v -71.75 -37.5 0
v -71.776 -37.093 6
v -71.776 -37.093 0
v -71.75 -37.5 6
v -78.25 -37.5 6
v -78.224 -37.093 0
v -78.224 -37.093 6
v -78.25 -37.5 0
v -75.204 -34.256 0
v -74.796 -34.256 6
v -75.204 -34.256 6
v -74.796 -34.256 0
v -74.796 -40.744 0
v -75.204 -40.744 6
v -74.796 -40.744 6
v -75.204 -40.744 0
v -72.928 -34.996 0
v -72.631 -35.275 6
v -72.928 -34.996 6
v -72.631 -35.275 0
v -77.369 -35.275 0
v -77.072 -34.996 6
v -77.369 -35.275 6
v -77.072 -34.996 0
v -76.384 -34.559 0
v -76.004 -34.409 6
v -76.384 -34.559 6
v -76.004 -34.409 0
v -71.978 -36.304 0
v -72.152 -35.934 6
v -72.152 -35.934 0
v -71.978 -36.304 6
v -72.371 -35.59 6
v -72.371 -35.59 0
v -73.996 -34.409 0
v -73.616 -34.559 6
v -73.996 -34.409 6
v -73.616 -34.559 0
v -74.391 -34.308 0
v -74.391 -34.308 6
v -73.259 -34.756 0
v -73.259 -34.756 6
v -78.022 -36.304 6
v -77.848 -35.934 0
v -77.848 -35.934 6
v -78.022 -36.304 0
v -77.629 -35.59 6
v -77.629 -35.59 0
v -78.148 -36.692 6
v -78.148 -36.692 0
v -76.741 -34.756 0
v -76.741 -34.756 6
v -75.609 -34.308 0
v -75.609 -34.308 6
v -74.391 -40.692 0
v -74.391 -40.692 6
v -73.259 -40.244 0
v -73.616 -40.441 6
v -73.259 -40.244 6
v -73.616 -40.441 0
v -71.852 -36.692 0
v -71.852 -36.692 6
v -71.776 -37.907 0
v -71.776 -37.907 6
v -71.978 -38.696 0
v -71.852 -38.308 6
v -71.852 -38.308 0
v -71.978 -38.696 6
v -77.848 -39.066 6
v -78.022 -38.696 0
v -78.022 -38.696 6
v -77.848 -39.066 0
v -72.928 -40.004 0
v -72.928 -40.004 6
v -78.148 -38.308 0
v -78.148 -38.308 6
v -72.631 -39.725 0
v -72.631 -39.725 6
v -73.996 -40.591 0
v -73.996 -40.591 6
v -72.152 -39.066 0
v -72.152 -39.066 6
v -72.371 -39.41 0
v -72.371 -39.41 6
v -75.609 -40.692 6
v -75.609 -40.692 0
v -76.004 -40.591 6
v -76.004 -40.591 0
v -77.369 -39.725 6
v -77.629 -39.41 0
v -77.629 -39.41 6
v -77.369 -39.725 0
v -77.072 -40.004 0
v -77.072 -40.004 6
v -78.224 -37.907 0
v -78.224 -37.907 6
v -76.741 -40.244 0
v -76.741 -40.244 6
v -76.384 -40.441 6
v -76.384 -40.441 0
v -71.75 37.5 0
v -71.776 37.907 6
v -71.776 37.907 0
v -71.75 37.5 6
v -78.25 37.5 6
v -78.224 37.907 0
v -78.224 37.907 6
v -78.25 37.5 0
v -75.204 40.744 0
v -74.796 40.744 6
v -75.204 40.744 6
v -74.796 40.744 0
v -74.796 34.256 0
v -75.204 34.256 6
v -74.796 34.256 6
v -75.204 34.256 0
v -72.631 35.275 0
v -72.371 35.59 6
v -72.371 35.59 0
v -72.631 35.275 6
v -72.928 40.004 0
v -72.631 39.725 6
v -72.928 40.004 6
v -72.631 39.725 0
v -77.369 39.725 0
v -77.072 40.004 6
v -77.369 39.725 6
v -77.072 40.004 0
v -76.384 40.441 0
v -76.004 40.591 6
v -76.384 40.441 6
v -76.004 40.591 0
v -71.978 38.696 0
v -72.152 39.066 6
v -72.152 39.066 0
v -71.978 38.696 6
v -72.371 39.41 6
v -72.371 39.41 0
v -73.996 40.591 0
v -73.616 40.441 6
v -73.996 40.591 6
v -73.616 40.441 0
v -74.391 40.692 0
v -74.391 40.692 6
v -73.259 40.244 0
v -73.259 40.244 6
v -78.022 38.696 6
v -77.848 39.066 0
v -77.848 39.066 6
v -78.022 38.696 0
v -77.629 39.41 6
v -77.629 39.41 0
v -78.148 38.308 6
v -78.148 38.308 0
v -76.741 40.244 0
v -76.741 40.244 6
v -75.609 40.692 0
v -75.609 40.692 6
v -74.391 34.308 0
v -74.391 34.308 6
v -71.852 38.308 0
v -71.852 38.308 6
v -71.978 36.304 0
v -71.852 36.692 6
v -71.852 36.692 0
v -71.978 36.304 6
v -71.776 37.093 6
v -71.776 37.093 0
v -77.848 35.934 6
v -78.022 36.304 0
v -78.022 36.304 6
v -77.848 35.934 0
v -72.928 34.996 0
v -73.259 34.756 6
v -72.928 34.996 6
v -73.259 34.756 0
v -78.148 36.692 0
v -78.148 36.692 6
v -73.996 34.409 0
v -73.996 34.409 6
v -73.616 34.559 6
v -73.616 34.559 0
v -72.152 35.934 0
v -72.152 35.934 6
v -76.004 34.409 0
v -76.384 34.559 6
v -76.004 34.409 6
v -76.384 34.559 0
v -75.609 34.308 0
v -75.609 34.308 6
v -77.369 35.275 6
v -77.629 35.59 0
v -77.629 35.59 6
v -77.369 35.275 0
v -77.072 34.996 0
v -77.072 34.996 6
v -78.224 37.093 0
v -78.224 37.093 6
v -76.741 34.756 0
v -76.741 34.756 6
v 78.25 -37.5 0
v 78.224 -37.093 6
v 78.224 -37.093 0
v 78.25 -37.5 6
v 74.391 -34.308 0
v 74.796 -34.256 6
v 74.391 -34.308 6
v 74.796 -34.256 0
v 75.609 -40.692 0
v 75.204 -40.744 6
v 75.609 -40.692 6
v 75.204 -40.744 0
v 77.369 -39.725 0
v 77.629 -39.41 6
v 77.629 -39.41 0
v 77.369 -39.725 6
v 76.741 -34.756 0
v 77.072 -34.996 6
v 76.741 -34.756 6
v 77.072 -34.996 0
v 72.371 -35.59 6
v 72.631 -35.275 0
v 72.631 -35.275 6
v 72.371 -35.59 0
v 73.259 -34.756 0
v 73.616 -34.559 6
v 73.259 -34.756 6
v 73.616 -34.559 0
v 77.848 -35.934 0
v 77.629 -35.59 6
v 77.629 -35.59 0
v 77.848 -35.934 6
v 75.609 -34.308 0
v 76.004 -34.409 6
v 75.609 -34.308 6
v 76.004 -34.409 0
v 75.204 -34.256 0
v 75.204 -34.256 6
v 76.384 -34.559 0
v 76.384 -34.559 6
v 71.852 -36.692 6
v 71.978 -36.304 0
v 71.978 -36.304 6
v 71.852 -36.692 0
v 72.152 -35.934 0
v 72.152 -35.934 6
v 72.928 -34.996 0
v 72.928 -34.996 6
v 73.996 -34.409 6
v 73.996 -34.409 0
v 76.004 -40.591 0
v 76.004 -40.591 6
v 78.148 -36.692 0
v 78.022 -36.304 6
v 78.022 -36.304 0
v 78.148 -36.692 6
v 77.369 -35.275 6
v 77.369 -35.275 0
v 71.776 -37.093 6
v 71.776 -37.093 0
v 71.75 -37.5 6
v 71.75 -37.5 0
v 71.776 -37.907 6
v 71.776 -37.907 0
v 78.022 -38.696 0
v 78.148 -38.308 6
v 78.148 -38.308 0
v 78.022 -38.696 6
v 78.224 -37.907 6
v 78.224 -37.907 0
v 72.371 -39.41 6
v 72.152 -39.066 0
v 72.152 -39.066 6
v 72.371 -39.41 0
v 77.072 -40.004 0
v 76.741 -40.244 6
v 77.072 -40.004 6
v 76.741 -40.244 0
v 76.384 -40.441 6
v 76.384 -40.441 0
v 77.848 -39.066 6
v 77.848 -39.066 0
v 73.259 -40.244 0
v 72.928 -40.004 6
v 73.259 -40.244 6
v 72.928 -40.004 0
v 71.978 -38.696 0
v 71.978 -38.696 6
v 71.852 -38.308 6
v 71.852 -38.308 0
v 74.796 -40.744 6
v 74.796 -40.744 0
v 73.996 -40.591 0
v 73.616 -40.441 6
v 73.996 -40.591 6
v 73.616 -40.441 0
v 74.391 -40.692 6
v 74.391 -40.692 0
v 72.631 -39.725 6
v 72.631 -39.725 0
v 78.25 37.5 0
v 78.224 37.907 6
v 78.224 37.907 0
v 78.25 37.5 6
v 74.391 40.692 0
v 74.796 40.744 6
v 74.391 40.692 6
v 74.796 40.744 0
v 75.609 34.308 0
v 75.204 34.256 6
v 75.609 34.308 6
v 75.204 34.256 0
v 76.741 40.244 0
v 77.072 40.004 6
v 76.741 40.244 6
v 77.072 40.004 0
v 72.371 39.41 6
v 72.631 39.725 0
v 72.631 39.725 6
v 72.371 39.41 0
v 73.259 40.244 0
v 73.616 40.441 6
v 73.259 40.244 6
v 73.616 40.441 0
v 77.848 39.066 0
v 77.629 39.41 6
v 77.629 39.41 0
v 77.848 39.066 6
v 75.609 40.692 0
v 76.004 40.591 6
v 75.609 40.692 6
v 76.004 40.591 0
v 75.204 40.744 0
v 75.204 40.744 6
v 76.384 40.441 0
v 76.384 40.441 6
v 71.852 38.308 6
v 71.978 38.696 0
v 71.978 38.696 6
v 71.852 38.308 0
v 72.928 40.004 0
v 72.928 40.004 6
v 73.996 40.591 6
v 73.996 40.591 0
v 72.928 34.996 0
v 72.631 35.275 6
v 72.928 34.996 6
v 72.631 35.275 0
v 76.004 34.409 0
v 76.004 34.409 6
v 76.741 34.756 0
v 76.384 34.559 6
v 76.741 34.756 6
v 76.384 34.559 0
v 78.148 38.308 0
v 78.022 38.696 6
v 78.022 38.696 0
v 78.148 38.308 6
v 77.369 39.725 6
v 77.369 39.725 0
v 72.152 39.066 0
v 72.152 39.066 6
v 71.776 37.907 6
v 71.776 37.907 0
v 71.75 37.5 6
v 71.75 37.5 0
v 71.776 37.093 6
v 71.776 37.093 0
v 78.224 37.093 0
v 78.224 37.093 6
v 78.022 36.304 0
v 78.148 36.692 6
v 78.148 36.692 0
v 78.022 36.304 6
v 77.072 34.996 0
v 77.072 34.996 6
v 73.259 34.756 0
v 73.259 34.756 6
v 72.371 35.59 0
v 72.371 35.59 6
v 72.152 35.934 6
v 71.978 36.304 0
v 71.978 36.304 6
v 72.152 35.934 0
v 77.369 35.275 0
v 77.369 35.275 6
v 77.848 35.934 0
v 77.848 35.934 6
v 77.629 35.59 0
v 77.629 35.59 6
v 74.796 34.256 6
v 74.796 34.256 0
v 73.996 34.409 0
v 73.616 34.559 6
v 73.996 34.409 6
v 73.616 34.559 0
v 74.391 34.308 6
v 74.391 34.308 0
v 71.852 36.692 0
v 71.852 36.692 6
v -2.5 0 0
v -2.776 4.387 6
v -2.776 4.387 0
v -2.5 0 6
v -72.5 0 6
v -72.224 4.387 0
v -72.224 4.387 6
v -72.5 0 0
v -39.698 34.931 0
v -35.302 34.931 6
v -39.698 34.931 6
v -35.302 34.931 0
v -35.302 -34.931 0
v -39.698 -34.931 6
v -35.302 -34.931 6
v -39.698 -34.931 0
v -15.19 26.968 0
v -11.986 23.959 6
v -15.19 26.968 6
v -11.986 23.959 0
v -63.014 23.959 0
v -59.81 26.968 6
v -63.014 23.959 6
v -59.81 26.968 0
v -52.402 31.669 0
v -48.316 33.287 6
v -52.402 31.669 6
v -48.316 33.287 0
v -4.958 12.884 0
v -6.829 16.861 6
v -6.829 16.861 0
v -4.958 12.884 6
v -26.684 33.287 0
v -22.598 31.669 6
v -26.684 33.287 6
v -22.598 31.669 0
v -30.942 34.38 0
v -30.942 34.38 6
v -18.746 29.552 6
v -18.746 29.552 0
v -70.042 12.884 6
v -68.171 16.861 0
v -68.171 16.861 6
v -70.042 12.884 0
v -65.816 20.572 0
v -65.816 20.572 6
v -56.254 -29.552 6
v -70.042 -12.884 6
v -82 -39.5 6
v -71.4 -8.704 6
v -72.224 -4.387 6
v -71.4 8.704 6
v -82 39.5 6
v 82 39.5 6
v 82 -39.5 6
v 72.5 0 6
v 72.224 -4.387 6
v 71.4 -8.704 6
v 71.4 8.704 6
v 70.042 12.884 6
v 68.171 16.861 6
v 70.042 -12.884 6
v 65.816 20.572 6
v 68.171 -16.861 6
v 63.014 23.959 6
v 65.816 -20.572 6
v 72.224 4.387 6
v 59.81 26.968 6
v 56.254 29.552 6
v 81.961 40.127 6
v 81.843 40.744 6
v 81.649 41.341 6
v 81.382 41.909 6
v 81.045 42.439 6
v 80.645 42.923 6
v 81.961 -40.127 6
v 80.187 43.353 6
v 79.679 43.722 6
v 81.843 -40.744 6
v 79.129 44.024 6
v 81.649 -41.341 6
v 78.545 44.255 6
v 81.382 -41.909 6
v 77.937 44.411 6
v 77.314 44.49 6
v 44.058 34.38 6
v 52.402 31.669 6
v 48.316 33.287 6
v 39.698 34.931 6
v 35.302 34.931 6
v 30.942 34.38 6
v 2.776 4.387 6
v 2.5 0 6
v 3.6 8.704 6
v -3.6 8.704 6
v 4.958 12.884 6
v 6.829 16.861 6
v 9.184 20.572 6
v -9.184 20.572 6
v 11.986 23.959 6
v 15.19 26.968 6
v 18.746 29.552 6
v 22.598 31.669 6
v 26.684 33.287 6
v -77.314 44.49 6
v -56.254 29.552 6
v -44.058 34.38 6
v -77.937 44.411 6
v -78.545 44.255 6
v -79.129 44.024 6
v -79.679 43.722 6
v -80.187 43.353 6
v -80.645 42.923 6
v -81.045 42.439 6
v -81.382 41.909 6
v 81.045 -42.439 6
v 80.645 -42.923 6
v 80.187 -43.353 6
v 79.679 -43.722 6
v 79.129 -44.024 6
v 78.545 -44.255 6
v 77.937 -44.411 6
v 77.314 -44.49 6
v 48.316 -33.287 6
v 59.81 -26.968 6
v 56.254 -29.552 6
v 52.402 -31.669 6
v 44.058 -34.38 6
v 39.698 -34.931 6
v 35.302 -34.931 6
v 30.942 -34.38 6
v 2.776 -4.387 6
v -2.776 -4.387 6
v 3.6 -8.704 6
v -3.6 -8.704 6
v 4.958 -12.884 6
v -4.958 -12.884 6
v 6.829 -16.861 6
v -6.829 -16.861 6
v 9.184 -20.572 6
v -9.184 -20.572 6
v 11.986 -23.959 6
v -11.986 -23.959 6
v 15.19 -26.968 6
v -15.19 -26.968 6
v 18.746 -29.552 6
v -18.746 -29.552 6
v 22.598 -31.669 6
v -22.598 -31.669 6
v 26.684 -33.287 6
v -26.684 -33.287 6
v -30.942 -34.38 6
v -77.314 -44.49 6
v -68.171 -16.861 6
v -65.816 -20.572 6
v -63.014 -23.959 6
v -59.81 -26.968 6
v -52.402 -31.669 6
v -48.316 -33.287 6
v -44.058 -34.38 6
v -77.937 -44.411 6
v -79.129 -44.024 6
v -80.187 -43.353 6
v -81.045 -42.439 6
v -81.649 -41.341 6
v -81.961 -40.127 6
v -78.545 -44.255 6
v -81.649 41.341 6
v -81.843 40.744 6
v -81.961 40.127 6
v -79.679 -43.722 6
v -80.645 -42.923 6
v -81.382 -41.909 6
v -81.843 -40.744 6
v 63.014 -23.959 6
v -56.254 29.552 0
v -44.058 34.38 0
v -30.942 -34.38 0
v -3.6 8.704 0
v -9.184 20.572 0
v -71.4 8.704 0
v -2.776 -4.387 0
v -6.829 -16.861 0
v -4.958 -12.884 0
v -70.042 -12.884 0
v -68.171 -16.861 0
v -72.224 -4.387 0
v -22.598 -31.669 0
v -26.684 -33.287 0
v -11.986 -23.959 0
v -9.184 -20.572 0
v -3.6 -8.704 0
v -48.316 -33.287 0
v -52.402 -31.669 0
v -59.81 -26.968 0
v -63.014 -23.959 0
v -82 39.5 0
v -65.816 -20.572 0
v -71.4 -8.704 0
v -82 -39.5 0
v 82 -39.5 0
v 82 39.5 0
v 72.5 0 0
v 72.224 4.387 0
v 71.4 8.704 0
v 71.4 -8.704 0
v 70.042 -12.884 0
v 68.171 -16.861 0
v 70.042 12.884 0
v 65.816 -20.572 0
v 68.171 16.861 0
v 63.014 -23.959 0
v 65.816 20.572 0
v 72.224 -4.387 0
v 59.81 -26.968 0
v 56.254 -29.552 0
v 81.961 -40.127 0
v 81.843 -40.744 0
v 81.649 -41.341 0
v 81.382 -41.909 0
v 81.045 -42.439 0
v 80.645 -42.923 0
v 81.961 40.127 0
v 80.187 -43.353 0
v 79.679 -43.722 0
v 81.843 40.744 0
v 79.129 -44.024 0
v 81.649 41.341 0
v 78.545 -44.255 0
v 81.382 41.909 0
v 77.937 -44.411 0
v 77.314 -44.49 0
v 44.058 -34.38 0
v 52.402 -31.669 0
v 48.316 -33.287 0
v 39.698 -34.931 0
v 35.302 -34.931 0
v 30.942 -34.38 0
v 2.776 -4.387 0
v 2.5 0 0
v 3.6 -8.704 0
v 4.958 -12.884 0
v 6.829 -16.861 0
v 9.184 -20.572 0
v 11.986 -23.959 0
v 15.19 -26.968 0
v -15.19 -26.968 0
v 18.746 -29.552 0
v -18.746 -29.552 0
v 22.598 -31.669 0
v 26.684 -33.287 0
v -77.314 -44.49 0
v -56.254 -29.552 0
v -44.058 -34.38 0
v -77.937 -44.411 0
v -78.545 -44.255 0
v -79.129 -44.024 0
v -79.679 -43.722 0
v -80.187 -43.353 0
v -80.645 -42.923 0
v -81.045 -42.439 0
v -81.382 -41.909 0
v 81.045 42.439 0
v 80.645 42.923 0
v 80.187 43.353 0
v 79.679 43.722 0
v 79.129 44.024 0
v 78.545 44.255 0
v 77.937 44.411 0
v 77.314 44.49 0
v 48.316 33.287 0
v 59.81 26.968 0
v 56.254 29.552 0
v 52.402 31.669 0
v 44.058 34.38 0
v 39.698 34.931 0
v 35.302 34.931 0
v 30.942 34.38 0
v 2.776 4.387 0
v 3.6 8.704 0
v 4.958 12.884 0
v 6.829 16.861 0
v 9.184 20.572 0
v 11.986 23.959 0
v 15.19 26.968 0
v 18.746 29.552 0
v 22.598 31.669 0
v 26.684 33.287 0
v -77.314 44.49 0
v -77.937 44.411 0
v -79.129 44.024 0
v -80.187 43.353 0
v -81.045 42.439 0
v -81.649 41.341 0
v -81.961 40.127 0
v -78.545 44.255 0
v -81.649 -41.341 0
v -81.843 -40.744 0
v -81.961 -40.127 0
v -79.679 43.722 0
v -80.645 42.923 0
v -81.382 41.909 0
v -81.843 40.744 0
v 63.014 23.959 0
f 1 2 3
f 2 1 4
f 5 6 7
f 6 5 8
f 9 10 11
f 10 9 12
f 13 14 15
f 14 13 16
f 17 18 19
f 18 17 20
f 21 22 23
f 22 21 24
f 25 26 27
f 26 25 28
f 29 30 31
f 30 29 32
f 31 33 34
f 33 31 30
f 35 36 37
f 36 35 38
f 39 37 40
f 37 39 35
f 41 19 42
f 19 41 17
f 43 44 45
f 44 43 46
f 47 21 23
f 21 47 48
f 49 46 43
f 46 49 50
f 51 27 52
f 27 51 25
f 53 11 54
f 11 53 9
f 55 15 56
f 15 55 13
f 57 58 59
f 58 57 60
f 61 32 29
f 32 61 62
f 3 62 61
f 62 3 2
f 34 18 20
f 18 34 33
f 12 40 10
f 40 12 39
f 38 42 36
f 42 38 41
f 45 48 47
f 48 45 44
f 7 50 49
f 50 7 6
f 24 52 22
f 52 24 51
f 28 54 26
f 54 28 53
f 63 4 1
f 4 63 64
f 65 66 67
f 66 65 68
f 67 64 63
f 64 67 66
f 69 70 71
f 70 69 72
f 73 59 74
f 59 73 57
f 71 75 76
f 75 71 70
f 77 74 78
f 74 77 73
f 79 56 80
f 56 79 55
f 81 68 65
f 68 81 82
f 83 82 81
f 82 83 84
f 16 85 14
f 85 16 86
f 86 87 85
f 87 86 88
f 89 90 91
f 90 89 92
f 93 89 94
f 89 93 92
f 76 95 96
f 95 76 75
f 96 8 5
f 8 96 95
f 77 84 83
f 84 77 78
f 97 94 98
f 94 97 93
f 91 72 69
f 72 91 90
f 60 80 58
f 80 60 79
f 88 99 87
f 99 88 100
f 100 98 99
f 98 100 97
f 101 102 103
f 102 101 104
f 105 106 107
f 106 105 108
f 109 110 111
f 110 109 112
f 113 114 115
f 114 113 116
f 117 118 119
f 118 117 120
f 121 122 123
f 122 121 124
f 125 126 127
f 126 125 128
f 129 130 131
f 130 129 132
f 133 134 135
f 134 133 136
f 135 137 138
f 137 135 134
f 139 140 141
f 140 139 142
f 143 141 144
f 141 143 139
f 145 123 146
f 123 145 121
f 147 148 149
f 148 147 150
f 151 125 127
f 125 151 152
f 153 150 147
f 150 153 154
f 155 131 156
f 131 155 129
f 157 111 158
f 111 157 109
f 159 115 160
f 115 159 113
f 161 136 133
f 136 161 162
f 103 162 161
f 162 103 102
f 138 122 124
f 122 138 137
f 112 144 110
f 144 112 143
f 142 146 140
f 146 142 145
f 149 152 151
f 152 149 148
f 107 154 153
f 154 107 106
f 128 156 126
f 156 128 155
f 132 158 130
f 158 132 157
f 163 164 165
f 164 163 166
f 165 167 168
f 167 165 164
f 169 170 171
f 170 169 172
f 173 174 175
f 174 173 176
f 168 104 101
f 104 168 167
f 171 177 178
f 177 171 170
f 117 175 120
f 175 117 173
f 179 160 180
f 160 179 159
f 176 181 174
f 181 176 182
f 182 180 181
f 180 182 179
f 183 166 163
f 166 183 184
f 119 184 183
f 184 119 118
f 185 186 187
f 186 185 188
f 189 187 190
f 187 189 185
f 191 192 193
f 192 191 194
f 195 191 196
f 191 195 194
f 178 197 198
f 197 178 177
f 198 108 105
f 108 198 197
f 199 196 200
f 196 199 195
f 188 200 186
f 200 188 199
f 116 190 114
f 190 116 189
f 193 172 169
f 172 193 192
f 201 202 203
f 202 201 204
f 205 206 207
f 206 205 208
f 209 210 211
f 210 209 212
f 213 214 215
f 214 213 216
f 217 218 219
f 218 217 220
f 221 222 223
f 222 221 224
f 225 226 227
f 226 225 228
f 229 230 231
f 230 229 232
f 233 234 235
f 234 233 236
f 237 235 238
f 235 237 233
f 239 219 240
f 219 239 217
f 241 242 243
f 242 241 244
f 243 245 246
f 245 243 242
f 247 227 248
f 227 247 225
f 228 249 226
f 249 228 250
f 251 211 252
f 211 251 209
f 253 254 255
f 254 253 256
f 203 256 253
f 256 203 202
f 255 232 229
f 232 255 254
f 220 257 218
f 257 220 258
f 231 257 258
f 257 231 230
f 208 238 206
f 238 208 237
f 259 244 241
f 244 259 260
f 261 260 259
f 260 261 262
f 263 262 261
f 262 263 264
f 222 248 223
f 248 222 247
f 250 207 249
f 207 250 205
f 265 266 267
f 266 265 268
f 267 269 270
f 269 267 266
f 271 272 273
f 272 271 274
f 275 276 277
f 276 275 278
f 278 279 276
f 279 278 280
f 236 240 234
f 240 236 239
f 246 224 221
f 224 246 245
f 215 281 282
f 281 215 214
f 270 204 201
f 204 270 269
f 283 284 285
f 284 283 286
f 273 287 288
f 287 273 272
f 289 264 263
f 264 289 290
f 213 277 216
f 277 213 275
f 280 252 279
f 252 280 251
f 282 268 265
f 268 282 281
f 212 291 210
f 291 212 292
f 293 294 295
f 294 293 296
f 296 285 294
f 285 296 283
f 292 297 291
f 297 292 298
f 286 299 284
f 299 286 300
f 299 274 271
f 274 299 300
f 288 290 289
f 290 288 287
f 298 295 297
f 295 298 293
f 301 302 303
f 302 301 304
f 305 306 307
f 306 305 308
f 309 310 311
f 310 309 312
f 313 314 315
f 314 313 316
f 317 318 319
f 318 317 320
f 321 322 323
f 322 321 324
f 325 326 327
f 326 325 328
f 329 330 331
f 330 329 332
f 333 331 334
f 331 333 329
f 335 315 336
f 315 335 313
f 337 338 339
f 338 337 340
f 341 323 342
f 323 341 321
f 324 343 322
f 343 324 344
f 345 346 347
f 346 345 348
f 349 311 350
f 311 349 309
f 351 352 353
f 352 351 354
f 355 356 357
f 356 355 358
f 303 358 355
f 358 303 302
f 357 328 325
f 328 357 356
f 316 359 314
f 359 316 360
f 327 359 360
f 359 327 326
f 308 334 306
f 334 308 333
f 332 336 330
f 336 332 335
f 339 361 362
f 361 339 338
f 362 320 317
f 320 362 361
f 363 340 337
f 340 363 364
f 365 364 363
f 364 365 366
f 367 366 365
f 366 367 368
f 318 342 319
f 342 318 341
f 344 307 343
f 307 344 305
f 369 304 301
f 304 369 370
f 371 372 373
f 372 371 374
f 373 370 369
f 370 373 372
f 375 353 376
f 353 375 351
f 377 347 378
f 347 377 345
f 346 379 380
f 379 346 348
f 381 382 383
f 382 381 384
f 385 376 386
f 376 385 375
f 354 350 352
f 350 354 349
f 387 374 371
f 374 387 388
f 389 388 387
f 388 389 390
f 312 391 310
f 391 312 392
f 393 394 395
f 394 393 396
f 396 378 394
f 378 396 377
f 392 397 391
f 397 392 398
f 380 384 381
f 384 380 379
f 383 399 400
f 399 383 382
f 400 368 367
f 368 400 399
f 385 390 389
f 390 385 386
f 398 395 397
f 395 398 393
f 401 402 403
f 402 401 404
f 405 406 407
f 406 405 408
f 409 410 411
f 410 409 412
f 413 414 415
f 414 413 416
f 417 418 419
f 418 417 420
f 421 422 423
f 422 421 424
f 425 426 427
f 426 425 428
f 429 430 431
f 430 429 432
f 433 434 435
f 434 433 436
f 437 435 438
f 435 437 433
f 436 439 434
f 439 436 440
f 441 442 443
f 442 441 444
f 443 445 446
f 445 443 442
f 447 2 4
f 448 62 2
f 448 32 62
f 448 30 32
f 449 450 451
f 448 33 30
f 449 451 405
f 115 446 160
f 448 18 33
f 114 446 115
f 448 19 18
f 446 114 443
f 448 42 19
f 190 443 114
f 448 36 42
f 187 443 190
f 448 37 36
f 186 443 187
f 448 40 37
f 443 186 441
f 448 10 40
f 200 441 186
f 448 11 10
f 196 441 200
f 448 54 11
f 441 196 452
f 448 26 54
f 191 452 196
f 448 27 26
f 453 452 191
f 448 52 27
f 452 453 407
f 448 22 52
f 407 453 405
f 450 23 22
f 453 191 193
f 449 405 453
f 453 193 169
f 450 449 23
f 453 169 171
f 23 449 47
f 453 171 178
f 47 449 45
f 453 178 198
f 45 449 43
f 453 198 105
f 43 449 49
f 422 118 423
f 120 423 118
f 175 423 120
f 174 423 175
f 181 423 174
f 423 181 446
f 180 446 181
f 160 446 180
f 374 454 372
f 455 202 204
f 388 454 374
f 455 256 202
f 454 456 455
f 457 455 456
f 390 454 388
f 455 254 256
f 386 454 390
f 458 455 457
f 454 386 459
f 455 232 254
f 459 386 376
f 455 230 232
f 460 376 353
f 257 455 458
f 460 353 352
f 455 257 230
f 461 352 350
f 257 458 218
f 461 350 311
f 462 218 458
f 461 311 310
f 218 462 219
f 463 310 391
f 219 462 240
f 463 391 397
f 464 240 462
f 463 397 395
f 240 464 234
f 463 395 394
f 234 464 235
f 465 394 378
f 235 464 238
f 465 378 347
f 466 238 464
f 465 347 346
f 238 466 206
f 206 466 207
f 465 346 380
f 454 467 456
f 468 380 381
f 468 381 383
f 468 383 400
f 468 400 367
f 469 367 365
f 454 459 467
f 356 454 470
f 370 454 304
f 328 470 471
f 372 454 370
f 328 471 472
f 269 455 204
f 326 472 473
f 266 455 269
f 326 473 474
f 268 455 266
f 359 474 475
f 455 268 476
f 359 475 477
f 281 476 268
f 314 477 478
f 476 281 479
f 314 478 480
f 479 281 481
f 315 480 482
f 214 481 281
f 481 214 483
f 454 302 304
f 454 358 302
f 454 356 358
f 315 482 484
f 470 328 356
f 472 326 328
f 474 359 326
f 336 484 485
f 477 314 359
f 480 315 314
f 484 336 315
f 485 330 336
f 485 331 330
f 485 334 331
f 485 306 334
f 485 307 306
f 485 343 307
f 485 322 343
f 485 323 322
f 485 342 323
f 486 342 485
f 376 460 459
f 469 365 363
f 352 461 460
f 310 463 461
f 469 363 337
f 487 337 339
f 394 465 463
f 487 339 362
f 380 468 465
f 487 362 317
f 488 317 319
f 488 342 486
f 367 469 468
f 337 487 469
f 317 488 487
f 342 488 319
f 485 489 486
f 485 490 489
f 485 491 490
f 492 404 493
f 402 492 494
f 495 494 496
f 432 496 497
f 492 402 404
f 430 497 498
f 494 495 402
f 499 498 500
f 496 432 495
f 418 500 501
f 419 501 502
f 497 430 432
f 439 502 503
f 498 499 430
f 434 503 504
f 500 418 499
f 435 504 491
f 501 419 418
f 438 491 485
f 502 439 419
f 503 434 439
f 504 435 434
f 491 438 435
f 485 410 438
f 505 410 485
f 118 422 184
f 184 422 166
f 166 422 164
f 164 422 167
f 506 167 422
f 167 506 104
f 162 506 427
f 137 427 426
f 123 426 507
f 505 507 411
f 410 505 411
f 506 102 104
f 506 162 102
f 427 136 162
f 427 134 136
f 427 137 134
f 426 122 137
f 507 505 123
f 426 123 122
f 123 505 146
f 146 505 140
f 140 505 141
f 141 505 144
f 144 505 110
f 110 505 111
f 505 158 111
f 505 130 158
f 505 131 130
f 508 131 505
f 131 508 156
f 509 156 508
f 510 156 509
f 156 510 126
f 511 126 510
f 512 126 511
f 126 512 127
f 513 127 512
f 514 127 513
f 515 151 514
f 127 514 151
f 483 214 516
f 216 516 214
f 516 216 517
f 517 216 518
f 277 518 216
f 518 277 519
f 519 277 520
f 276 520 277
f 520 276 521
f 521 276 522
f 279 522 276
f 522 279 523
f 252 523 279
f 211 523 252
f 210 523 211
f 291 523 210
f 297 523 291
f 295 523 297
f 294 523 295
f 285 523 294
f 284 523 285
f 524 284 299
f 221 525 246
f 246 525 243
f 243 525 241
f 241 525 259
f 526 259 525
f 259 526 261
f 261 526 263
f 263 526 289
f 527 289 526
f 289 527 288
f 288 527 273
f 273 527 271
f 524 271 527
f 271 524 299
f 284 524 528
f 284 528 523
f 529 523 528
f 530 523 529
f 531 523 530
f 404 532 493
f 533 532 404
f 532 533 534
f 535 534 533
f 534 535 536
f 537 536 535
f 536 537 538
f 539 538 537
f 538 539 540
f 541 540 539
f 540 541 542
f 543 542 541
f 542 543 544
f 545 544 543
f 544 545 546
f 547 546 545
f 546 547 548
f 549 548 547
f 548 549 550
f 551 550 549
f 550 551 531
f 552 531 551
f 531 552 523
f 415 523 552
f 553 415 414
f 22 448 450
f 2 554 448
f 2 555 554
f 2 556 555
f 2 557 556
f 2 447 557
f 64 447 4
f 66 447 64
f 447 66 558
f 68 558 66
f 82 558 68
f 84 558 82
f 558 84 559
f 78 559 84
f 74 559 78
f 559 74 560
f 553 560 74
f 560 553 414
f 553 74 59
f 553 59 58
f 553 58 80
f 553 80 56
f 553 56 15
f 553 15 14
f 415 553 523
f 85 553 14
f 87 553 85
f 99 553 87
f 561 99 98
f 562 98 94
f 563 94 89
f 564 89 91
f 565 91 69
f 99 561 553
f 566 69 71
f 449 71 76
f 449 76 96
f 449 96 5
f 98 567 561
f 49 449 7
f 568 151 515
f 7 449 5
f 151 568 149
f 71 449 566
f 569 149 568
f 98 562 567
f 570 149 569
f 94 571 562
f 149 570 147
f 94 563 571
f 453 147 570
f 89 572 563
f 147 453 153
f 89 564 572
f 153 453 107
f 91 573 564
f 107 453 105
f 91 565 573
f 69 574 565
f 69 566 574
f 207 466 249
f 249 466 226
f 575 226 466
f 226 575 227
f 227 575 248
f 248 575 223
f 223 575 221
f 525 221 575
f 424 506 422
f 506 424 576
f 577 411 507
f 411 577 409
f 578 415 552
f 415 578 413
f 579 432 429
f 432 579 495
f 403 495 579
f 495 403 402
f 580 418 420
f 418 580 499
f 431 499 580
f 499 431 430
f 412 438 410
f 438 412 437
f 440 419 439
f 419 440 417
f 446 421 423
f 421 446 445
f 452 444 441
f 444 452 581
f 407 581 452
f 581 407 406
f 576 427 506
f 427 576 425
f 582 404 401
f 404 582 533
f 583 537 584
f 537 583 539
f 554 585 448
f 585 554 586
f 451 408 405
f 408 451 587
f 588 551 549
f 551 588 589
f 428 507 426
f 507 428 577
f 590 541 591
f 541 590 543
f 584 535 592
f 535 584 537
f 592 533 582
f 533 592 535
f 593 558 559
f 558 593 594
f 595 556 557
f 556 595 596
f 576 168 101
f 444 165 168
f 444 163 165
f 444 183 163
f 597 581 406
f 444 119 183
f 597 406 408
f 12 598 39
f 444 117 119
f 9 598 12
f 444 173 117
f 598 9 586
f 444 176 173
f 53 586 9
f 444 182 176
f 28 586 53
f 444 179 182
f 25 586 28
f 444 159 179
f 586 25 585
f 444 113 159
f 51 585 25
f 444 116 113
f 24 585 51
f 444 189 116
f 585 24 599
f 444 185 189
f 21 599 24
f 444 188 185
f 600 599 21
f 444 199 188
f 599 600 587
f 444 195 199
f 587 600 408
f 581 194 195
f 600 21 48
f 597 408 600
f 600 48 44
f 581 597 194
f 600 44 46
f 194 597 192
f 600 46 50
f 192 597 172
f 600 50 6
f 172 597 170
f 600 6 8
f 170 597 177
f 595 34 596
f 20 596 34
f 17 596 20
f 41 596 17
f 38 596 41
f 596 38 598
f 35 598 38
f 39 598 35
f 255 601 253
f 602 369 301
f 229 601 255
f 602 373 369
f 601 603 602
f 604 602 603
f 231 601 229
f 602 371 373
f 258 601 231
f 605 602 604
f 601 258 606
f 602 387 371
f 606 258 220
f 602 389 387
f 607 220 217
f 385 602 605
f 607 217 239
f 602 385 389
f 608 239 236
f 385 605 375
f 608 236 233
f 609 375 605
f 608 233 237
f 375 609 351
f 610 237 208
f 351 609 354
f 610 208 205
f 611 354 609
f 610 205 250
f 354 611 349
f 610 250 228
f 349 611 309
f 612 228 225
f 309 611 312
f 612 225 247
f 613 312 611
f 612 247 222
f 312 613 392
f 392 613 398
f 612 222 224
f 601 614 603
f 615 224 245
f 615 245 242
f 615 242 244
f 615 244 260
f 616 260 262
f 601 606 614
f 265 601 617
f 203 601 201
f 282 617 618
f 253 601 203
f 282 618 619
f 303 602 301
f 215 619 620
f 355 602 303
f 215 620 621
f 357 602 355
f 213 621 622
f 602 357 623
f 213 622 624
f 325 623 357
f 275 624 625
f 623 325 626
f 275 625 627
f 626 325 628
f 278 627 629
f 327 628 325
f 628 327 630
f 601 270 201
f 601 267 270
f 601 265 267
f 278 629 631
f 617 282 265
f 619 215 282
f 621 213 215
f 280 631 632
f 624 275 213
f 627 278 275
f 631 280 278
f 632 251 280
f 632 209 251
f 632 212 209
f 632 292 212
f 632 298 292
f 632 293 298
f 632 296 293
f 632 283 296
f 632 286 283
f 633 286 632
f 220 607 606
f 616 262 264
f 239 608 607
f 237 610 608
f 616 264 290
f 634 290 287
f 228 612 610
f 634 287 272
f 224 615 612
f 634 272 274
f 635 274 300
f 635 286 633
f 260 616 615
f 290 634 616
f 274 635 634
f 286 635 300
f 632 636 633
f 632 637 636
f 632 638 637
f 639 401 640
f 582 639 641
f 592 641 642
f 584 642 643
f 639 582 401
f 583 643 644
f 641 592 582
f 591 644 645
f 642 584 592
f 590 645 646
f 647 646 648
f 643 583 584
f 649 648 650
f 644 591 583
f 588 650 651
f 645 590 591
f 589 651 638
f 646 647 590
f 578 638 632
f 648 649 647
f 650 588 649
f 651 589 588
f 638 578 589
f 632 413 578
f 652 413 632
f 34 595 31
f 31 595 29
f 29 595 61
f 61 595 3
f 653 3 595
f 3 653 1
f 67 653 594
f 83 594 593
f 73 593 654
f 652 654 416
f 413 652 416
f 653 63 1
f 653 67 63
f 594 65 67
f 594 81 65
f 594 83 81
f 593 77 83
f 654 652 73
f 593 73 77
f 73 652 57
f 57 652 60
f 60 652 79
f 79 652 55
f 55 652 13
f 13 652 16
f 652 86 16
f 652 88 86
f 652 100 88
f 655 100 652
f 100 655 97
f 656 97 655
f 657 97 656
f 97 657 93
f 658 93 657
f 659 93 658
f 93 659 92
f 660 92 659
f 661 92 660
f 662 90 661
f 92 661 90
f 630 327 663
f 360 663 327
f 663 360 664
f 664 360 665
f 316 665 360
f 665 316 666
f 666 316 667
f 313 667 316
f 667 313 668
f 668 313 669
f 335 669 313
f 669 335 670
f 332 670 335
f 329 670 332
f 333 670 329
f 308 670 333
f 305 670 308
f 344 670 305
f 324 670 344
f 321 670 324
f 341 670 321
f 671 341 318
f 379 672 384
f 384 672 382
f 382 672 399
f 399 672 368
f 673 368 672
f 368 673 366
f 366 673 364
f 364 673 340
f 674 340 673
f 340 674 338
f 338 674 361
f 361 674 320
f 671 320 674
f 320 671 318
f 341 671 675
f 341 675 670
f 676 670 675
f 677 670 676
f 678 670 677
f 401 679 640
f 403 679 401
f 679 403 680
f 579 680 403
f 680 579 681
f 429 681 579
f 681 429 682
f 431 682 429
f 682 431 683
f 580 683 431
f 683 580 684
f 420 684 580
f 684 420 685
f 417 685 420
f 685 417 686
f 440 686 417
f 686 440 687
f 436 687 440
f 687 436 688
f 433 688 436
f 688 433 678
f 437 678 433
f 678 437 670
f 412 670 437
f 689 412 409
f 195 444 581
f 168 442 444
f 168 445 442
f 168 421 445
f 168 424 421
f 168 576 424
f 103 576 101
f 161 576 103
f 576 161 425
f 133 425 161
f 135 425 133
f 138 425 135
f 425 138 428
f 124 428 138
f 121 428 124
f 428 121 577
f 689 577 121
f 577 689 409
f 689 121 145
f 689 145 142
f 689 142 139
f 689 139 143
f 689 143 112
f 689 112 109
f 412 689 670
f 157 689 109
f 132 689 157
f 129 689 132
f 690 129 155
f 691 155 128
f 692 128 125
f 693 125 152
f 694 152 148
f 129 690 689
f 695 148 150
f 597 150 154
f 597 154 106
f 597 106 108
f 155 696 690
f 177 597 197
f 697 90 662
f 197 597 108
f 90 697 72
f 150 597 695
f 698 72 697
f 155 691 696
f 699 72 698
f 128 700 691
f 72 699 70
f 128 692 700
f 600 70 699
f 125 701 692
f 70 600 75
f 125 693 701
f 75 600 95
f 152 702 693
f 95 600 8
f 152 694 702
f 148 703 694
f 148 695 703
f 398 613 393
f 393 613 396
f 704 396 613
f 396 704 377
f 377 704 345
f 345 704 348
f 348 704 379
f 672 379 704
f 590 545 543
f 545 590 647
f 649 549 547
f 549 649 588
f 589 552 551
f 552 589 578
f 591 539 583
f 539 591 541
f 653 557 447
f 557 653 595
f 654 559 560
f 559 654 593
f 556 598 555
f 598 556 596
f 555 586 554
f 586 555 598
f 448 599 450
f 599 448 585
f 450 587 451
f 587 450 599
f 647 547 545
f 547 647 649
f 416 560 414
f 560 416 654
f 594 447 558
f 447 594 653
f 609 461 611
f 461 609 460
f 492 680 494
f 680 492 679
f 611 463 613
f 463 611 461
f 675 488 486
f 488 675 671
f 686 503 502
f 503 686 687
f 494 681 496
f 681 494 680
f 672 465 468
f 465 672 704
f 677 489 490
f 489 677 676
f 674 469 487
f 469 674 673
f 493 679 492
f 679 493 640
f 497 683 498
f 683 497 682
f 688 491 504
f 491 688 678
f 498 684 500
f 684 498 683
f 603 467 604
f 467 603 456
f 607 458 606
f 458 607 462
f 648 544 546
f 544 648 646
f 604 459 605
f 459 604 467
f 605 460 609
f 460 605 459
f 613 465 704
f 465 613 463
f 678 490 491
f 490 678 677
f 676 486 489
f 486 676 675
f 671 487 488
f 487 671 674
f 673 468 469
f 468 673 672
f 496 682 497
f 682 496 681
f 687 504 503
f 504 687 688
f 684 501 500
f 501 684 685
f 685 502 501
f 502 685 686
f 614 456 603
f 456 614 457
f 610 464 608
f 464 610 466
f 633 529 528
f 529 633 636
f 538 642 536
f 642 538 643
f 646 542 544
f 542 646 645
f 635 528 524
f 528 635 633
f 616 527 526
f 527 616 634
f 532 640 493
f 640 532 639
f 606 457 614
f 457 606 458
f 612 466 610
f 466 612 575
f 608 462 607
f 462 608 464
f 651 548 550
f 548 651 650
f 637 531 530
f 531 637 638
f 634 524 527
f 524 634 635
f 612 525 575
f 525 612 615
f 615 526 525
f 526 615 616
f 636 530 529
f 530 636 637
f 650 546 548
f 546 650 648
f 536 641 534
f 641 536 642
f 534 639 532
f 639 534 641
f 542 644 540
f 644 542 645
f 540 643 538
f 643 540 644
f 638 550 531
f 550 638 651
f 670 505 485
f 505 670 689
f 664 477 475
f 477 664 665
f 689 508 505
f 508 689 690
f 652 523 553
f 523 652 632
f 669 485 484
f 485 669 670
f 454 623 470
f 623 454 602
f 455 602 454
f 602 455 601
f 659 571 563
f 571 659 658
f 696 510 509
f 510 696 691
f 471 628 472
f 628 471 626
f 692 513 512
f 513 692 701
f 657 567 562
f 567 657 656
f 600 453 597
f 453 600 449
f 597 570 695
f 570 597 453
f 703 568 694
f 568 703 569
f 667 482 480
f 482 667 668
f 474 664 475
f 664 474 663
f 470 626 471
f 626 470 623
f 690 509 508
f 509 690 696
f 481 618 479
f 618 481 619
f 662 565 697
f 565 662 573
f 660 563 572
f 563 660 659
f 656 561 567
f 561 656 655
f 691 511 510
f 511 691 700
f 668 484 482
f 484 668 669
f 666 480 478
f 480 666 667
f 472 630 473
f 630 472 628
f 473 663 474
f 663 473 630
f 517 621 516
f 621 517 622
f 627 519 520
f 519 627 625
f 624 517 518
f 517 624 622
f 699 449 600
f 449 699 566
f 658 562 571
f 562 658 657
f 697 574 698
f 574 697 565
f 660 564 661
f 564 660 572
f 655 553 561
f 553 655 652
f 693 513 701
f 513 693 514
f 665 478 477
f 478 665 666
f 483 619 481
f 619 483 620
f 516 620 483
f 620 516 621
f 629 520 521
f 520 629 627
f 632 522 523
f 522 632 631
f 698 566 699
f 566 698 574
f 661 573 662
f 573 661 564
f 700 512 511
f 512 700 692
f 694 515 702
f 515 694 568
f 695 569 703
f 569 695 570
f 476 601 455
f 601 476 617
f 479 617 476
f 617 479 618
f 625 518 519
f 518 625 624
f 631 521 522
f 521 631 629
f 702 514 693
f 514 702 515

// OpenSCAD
$fn = 50;


difference() {
	union() {
		hull() {
			translate(v = [-77.0000000000, 39.5000000000, 0]) {
				cylinder(h = 6, r = 5);
			}
			translate(v = [77.0000000000, 39.5000000000, 0]) {
				cylinder(h = 6, r = 5);
			}
			translate(v = [-77.0000000000, -39.5000000000, 0]) {
				cylinder(h = 6, r = 5);
			}
			translate(v = [77.0000000000, -39.5000000000, 0]) {
				cylinder(h = 6, r = 5);
			}
		}
	}
	union() {
		#translate(v = [-75.0000000000, -37.5000000000, -100.0000000000]) {
			cylinder(h = 200, r = 3.2500000000);
		}
		#translate(v = [-75.0000000000, 37.5000000000, -100.0000000000]) {
			cylinder(h = 200, r = 3.2500000000);
		}
		#translate(v = [75.0000000000, -37.5000000000, -100.0000000000]) {
			cylinder(h = 200, r = 3.2500000000);
		}
		#translate(v = [75.0000000000, 37.5000000000, -100.0000000000]) {
			cylinder(h = 200, r = 3.2500000000);
		}
		#translate(v = [-37.5000000000, 0, 0]) {
			cylinder(h = 6, r = 35.0000000000);
		}
		#translate(v = [37.5000000000, 0, 0]) {
			cylinder(h = 6, r = 35.0000000000);
		}
	}
}
